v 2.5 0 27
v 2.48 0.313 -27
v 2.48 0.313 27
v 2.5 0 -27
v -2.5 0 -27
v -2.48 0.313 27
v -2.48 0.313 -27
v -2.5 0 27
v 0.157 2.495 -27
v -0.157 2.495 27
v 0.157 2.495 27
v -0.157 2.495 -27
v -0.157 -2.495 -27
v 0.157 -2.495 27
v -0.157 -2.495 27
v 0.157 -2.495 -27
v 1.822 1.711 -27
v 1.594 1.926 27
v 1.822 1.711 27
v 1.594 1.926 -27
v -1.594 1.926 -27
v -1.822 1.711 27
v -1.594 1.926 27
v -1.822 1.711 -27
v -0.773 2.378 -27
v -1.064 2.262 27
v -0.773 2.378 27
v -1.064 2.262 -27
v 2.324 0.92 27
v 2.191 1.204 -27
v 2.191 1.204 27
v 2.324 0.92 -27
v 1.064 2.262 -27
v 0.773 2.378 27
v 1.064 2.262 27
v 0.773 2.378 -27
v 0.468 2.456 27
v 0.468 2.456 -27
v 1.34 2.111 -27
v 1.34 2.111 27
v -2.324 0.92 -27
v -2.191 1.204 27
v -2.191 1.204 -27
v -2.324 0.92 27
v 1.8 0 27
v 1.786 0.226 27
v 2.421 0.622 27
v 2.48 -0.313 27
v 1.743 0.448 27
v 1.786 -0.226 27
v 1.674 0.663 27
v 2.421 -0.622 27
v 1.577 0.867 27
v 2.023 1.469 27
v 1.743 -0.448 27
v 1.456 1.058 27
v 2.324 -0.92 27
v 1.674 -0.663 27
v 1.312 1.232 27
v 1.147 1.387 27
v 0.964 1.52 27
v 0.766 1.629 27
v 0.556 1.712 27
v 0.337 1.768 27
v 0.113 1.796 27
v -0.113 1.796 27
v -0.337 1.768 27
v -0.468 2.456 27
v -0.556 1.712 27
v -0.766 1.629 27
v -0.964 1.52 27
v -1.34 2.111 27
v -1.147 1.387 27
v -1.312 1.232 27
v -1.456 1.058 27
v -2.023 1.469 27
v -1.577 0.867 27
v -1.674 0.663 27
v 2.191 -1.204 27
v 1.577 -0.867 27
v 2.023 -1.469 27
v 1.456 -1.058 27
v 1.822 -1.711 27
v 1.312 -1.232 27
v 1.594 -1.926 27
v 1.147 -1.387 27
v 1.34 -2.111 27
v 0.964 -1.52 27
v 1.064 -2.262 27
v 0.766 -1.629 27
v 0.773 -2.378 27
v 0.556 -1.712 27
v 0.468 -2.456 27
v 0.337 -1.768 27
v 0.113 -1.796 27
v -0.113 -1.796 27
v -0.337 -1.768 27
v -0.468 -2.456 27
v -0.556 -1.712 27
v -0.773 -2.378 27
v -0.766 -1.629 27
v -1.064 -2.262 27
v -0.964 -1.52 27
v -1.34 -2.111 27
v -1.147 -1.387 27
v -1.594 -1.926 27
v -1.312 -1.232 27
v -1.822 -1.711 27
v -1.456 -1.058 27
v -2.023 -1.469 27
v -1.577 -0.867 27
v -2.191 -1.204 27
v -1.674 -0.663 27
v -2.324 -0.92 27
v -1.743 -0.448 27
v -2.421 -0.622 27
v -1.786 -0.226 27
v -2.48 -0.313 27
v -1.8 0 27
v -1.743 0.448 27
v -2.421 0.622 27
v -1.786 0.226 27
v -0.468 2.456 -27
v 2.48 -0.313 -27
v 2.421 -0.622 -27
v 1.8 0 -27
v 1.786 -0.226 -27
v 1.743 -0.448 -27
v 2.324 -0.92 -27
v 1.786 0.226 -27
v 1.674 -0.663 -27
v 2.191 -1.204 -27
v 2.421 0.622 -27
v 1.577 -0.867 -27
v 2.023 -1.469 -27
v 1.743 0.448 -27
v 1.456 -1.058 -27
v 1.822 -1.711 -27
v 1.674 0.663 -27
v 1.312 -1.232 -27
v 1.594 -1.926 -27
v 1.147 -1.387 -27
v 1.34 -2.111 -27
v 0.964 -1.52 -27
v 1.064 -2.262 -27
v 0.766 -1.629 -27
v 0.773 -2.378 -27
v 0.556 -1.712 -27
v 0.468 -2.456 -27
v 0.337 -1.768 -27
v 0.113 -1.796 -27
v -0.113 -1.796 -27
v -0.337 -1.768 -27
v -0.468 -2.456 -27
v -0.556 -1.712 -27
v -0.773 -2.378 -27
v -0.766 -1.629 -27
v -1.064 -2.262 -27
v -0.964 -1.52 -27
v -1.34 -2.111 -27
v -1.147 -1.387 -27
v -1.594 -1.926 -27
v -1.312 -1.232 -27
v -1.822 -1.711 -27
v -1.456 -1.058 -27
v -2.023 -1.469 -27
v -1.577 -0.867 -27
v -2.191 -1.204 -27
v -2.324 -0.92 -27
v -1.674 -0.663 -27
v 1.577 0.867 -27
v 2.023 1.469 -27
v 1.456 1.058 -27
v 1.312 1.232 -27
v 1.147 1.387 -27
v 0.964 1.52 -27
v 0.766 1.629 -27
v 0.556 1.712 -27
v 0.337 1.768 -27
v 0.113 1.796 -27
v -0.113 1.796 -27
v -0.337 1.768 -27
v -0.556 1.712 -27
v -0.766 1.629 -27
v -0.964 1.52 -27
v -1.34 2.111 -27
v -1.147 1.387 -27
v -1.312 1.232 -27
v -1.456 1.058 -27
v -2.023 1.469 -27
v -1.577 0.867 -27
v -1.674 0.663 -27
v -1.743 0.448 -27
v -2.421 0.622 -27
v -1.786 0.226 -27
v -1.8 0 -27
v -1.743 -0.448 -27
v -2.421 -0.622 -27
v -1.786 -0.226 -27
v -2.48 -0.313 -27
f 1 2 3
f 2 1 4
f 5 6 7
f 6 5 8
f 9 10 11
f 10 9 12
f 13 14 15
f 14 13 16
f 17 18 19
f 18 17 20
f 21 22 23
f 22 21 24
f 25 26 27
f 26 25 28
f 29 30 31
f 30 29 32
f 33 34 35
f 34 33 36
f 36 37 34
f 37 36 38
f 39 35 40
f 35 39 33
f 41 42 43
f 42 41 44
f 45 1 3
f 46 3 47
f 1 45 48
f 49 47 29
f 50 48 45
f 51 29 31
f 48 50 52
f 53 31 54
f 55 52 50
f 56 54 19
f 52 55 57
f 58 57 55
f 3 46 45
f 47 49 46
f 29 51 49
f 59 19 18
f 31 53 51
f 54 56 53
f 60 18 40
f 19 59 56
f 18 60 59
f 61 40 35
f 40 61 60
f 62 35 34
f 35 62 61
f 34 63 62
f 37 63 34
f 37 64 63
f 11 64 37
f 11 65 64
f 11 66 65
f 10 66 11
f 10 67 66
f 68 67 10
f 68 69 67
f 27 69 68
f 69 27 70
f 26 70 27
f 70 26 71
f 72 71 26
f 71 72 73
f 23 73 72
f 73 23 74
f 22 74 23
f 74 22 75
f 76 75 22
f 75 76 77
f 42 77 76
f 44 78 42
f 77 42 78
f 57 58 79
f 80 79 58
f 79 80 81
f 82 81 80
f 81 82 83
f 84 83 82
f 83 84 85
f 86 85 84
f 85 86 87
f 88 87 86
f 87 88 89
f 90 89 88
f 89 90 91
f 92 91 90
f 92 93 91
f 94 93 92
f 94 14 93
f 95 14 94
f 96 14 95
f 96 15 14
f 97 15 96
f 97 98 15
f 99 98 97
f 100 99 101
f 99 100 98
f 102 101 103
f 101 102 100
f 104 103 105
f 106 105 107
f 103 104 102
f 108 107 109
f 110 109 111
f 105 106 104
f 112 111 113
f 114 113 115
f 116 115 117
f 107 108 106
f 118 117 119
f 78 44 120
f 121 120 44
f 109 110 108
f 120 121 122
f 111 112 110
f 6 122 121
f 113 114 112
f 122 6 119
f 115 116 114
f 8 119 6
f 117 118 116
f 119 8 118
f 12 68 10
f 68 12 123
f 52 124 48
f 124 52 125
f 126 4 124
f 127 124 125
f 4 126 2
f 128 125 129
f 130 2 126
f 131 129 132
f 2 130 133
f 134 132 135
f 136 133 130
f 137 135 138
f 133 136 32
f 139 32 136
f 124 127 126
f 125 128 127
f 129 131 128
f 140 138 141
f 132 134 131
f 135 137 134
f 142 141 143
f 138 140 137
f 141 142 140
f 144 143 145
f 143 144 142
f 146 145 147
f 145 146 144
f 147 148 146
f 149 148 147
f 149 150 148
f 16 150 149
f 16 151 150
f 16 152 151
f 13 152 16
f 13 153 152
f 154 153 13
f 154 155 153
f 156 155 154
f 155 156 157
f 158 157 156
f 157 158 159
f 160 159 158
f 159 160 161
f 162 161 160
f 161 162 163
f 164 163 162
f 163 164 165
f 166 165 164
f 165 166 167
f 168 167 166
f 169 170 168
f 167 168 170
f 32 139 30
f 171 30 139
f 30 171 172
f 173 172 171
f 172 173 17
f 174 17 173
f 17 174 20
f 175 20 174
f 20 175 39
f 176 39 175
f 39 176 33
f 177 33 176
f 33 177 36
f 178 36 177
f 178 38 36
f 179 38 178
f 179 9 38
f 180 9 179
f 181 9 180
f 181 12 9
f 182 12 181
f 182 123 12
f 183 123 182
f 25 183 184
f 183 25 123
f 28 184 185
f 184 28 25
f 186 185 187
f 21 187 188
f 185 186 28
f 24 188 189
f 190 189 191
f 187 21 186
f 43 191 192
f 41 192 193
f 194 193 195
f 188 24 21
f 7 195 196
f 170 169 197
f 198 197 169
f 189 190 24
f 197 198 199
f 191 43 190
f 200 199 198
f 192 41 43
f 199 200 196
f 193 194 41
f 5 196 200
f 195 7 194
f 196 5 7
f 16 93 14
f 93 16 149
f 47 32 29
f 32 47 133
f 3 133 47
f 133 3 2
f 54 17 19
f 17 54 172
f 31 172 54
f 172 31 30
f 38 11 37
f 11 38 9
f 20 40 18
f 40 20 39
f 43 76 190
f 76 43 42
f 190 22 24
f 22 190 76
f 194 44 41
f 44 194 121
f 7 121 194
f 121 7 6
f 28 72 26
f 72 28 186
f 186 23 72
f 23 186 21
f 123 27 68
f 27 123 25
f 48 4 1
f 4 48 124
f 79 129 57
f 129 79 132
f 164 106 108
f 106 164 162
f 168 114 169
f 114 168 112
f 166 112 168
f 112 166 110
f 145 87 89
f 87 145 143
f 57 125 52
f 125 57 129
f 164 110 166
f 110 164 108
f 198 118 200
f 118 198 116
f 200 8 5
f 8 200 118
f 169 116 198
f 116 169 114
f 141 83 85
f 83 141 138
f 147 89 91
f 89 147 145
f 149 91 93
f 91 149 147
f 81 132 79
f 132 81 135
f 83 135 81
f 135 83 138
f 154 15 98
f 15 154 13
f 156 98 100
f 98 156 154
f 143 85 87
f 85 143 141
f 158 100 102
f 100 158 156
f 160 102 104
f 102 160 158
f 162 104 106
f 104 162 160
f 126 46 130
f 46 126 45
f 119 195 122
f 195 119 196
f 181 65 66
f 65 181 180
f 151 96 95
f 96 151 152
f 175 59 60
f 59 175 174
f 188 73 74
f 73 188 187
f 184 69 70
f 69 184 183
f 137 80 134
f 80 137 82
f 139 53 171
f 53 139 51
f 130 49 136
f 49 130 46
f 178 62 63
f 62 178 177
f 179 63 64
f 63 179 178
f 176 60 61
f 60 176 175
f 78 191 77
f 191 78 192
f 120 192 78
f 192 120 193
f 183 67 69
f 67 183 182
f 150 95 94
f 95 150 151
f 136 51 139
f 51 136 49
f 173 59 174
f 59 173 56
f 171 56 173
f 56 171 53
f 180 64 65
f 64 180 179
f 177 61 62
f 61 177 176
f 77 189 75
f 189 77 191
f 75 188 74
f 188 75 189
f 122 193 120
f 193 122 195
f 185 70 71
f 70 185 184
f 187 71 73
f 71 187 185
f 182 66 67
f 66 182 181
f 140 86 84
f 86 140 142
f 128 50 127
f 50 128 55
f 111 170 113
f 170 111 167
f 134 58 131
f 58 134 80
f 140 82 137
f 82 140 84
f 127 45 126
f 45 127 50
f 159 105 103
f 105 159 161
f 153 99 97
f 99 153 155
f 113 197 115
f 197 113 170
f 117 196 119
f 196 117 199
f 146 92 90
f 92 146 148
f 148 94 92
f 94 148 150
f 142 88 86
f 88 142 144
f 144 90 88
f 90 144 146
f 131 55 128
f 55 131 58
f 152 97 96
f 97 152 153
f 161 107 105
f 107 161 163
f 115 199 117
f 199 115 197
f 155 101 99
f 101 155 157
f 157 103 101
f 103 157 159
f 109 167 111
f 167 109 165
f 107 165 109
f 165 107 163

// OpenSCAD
$fn = 50;


difference() {
	union() {
		translate(v = [0, 0, -27.0000000000]) {
			cylinder(h = 54, r = 2.5000000000);
		}
	}
	union() {
		translate(v = [0, 0, -100.0000000000]) {
			cylinder(h = 200, r = 1.8000000000);
		}
	}
}
